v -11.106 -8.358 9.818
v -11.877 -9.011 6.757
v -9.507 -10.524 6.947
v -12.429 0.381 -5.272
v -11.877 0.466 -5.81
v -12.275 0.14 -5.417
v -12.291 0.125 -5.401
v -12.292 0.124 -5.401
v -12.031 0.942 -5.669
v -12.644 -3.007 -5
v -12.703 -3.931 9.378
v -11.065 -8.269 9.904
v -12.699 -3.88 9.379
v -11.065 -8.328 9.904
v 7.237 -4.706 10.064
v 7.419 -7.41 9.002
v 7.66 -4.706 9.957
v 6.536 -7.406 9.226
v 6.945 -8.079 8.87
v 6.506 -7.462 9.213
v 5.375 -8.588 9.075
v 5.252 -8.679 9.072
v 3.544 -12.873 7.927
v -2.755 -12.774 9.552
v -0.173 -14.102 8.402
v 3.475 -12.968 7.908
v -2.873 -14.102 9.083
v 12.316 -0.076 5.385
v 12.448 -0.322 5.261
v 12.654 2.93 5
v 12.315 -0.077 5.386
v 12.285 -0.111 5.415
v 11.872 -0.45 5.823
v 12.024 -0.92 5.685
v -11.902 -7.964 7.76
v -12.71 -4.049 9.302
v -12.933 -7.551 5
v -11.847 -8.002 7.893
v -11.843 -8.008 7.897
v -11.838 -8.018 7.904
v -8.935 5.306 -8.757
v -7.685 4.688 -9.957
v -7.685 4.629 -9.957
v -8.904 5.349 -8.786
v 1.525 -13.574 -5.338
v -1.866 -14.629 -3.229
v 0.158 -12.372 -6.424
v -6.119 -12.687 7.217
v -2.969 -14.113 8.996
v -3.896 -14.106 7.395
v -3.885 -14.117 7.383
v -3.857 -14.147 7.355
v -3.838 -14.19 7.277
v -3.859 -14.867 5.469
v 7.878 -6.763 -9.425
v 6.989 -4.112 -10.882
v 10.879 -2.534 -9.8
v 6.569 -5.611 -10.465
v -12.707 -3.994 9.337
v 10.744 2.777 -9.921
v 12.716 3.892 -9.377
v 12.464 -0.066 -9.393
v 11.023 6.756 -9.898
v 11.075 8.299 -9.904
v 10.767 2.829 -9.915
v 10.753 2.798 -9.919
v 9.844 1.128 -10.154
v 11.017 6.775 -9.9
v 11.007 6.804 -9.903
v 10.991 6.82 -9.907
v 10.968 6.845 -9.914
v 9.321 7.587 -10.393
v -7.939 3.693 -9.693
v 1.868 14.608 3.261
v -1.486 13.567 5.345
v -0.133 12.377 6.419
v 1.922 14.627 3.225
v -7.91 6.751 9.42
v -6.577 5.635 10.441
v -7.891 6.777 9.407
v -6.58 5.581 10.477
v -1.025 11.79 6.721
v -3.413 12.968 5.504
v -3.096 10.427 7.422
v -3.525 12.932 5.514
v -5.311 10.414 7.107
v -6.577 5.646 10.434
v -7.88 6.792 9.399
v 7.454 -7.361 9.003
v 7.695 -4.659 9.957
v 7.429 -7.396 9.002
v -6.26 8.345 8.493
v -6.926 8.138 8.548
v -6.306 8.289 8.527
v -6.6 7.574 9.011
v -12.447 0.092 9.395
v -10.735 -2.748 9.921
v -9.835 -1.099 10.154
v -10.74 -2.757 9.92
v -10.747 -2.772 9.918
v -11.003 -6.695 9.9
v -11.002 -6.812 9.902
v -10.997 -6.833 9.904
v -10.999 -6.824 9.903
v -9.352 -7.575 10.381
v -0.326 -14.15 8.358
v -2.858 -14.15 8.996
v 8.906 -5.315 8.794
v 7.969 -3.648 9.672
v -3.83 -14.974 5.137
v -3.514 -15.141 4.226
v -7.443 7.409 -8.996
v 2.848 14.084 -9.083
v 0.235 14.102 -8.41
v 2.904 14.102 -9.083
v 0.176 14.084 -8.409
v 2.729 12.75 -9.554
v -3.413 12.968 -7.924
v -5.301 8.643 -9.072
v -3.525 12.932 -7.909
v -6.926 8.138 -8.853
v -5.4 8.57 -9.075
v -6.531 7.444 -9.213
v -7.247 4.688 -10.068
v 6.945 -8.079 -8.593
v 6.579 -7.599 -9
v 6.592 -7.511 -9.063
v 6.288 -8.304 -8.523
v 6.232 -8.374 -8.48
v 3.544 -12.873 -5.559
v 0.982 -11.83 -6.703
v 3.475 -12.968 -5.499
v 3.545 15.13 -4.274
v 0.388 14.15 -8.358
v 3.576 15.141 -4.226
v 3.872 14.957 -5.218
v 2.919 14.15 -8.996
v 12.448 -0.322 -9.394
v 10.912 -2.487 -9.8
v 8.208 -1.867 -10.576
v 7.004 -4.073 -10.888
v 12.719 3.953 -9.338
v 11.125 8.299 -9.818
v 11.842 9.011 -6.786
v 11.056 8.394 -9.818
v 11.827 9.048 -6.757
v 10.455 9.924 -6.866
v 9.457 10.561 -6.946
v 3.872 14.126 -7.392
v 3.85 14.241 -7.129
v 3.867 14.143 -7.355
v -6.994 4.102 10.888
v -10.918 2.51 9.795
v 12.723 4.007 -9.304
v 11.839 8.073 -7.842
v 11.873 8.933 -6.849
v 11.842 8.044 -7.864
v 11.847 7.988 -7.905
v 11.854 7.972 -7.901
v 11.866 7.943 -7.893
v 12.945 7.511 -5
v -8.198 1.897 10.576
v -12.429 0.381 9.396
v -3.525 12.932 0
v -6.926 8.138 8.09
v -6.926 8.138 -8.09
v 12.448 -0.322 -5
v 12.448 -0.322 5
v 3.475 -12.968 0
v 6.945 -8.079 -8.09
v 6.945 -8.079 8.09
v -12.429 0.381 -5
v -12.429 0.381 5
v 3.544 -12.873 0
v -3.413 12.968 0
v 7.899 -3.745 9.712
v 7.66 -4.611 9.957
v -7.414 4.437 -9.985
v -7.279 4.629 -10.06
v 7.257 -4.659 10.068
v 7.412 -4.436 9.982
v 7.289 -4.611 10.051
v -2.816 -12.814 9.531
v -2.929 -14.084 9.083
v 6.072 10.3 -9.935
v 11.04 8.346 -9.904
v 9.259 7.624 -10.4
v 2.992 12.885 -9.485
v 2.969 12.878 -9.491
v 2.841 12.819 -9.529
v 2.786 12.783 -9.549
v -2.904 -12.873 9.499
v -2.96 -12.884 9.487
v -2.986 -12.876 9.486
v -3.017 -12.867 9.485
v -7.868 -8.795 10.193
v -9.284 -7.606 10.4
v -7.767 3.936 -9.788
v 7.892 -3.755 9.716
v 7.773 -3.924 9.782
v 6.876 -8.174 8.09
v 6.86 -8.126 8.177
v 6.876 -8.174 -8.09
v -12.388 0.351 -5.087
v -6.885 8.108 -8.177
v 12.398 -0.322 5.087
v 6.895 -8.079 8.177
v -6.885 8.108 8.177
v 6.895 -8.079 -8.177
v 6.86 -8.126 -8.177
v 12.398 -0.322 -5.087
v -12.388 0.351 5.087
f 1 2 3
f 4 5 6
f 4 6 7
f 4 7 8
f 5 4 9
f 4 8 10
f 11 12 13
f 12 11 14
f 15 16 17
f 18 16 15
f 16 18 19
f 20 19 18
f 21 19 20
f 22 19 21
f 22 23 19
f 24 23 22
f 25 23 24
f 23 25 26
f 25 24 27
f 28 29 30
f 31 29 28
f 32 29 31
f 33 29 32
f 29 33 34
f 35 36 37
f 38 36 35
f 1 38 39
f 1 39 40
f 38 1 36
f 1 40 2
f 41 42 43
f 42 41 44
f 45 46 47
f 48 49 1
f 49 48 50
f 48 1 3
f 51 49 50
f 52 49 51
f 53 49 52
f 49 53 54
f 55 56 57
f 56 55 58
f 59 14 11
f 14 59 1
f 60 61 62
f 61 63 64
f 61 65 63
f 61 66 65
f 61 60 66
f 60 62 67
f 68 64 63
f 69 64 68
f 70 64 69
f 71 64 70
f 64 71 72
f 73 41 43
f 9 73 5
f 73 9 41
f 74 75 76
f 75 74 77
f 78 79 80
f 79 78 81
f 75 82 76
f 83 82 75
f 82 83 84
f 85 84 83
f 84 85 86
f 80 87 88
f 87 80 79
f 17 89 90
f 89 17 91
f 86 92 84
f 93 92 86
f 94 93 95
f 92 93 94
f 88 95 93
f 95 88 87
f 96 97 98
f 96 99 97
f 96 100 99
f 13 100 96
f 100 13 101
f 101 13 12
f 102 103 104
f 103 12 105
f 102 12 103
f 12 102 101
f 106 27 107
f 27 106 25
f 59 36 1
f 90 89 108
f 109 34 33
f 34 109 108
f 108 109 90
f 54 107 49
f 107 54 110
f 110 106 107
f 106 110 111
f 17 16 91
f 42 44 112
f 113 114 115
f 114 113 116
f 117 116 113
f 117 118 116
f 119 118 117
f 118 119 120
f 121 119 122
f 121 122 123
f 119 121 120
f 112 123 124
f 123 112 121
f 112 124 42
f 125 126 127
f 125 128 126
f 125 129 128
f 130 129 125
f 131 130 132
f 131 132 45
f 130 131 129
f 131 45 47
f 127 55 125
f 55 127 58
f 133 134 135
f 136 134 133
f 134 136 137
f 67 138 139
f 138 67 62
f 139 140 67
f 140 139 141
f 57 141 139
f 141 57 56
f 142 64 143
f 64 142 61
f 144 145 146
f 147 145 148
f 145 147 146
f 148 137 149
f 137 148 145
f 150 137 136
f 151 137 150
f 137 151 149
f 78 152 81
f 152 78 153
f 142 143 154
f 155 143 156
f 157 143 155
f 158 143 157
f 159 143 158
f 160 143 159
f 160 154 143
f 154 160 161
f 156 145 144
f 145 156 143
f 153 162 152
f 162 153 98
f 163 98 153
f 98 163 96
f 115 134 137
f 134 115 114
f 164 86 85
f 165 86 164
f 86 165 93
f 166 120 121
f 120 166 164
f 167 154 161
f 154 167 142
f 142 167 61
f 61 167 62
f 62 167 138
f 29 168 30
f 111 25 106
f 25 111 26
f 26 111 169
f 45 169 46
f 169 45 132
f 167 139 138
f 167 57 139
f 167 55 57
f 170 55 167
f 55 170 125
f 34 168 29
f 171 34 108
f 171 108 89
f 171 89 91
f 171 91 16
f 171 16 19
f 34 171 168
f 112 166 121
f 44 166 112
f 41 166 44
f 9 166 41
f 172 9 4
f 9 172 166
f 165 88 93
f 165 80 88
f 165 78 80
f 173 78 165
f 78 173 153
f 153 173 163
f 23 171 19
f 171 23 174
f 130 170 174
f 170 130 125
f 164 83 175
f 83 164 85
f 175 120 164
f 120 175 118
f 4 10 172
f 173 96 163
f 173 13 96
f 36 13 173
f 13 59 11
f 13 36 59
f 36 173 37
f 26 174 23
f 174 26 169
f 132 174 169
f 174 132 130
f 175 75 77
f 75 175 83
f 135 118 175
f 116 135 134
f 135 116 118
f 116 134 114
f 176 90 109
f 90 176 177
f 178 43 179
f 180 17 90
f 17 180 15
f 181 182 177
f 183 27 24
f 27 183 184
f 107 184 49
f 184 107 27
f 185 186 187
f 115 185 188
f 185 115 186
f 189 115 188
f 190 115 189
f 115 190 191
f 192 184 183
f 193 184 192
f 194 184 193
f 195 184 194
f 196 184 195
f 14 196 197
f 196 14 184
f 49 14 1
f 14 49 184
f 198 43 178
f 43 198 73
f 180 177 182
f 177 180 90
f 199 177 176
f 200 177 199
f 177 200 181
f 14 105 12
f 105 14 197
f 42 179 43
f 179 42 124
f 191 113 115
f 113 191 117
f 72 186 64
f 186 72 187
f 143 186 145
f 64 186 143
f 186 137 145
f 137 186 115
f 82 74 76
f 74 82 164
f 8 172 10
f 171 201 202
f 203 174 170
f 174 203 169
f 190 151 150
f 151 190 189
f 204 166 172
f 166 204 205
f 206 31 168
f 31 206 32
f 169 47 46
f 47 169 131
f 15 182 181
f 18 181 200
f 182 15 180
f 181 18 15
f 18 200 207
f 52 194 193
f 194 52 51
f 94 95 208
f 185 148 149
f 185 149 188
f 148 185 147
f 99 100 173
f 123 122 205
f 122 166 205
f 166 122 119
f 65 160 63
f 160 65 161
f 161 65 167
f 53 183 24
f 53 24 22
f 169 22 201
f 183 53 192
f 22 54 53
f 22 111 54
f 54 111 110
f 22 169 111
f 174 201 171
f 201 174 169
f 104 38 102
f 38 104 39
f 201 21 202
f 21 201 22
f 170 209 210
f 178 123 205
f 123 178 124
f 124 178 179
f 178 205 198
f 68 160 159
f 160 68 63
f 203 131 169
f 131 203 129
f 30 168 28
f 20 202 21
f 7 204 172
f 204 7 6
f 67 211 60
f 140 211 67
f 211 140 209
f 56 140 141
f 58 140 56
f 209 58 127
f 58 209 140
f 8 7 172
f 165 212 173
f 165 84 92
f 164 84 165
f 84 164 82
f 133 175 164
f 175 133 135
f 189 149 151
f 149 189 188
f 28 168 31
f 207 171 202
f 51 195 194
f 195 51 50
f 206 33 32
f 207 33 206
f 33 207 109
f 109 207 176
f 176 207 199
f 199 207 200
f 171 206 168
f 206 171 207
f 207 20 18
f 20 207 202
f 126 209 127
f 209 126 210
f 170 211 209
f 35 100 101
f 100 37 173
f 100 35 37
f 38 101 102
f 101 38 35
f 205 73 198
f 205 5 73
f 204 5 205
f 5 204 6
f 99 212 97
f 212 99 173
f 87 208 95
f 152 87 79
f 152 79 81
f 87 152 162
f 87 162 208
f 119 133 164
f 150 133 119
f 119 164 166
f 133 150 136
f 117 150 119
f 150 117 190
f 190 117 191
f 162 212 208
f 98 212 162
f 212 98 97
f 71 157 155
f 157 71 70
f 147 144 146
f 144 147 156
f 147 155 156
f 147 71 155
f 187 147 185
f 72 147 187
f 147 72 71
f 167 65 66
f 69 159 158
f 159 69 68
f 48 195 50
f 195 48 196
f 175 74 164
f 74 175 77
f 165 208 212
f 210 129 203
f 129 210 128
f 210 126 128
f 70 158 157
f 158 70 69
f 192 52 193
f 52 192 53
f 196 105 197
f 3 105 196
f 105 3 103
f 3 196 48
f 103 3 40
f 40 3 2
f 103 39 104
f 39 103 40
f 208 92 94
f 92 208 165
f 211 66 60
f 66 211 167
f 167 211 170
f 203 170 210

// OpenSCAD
// Auto-generated OpenSCAD file

    inner_points = 10*[[0.14248327341962527, 1.0649917302561571, -1.3090169943752274], [0.9580903383196593, 0.4863855466691237, -1.3090169943748198], [-0.9580910891193597, -0.48638509736213764, 1.3090169943748198], [-0.14248402421932574, -1.0649912809491708, 1.3090169943752274], [-0.4078039078494043, 0.28930331644652235, -1.6180339887500987], [0.4078031570506297, -0.289302867140511, -1.618033988749691], [0.4825794550170831, 1.5443935346701905, -0.5000000000003272], [1.298186519917117, 0.965787351083157, -0.4999999999999196], [-1.2981872707168176, -0.965786901776171, 0.4999999999999196], [-0.4825802058167836, -1.5443930853632042, 0.5000000000003272], [-0.4078039078503302, 0.28930331644749707, 1.618033988749691], [0.40780315704970377, -0.2893028671395363, 1.6180339887500987], [-0.9580910891186109, -0.48638509736292634, -1.3090169943750751], [-0.14248402421857673, -1.0649912809499593, -1.3090169943746672], [0.4825794550167972, 1.544393534670492, 0.4999999999996728], [1.2981865199168312, 0.9657873510834587, 0.5000000000000806], [-1.2981872707165318, -0.9657869017764726, -0.5000000000000806], [-0.48258020581649774, -1.5443930853635057, -0.4999999999996728], [0.14248327341887626, 1.0649917302569456, 1.3090169943746672], [0.9580903383189104, 0.4863855466699124, 1.3090169943750751], [-0.6844982809436438, 0.8078895934640433, -0.8090169943753867], [1.2347847114134358, -0.032200730347909934, -0.499999999999637], [-1.2347854622131365, 0.032201179654895995, 0.499999999999637], [0.6844975301439434, -0.8078891441570573, 0.8090169943753867], [-0.3444020993461857, 1.2872913978780771, -4.862776847858186e-13], [0.6844975301444062, -0.8078891441575446, -0.8090169943745082], [-0.6844982809441066, 0.8078895934645307, 0.8090169943745082], [0.3444013485464852, -1.2872909485710908, 4.862776847858186e-13], [-1.2347854622128502, 0.03220117965459479, -0.5000000000003629], [1.2347847114131496, -0.03220073034760873, 0.5000000000003629]];

    outer_points = 10*[[1.6886306591457743, 0.10140860074207245, 0.07922614112991666], [1.4492611727633173, -0.10140860074207245, -0.8702829066264164], [-1.4492611727633173, 0.10140860074207245, 0.8702829066264164], [-1.6886306591457743, -0.10140860074207245, -0.07922614112991666], [1.3418365432044954, 1.0326989450942865, -0.032273346155188454], [1.1024670568220385, 0.8298817436101416, -0.9817823939115216], [1.4361407617027524, -0.8298817436101416, 0.34180402710957575], [1.1967712753202955, -1.0326989450942865, -0.6077050206467574], [-1.1967712753202955, 1.0326989450942865, 0.6077050206467574], [-1.4361407617027524, 0.8298817436101416, -0.34180402710957575], [-1.1024670568220385, -0.8298817436101416, 0.9817823939115216], [-1.3418365432044954, -1.0326989450942865, 0.032273346155188454], [0.5282219790700129, 1.6082680312985487, 0.049894579668983724], [0.28885249268755586, 1.4054508298144037, -0.8996144680873494], [0.6808094098826893, -1.4054508298144037, 0.6551644840336533], [0.44143992350023237, -1.6082680312985487, -0.2943445637226797], [-0.44143992350023237, 1.6082680312985487, 0.2943445637226797], [-0.6808094098826893, 1.4054508298144037, -0.6551644840336533], [-0.28885249268755586, -1.4054508298144037, 0.8996144680873494], [-0.5282219790700129, -1.6082680312985487, -0.049894579668983724], [1.0169691649835269, 0.46543823413525565, 0.7244805586051959], [0.551976750971019, -0.46543823413525565, -1.1200089413534458], [-0.551976750971019, 0.46543823413525565, 1.1200089413534458], [-1.0169691649835269, -0.46543823413525565, -0.7244805586051959], [0.7644792675405051, -0.4658521102169585, 0.987058444584855], [0.2051826350297401, 0.4658521102169585, -1.231508428638551], [-0.2051826350297401, -0.4658521102169585, 1.231508428638551], [-0.7644792675405051, 0.4658521102169585, -0.987058444584855], [0.20335460084904425, 1.0410073203395176, 0.8066484844293681], [-0.20335460084904425, -1.0410073203395176, -0.8066484844293681]];

    // Convex hull for inner set (I)
    module inner_hull() {
        hull() {
            for (p = inner_points) {
                translate(p) sphere(r=0.1);
            }
        }
    }

    // Convex hull for outer set (O) minus inner hull (O \ I)
    module outer_minus_inner() {
        difference() {
            hull() {
                for (p = outer_points) {
                    translate(p) sphere(r=0.1);
                }
            }
            inner_hull(); // Subtract inner hull
        }
    }

    // Convex hull for outer set (O) minus all translated inner hulls
    module outer_minus_AllTranslationInner() {
        difference() {
            hull() {
                for (p = outer_points) {
                    translate(p) sphere(r=0.1);
                }
            }
            hull() {
                translate([0,0,50]) inner_hull();
                translate([0,0,-50]) inner_hull();
            }; // Subtract translated inner hulls
        }
    }

    // Difference between outer_minus_inner and outer_minus_AllTranslationInner
    module outer_minus_inner_diff() {
        difference() {
            // Outer minus inner
            difference() {
                hull() {
                    for (p = outer_points) {
                        translate(p) sphere(r=0.1);
                    }
                }
                inner_hull();
            }

            // Subtract Outer minus AllTranslationInner
            difference() {
                hull() {
                    for (p = outer_points) {
                        translate(p) sphere(r=0.1);
                    }
                }
                hull() {
                    translate([0,0,50]) inner_hull();
                    translate([0,0,-50]) inner_hull();
                };
            }
        }
    }

    // Rendering all with colors applied
    color([1, 1, 0, 1]) outer_minus_inner_diff(); // Opaque yellow
    
